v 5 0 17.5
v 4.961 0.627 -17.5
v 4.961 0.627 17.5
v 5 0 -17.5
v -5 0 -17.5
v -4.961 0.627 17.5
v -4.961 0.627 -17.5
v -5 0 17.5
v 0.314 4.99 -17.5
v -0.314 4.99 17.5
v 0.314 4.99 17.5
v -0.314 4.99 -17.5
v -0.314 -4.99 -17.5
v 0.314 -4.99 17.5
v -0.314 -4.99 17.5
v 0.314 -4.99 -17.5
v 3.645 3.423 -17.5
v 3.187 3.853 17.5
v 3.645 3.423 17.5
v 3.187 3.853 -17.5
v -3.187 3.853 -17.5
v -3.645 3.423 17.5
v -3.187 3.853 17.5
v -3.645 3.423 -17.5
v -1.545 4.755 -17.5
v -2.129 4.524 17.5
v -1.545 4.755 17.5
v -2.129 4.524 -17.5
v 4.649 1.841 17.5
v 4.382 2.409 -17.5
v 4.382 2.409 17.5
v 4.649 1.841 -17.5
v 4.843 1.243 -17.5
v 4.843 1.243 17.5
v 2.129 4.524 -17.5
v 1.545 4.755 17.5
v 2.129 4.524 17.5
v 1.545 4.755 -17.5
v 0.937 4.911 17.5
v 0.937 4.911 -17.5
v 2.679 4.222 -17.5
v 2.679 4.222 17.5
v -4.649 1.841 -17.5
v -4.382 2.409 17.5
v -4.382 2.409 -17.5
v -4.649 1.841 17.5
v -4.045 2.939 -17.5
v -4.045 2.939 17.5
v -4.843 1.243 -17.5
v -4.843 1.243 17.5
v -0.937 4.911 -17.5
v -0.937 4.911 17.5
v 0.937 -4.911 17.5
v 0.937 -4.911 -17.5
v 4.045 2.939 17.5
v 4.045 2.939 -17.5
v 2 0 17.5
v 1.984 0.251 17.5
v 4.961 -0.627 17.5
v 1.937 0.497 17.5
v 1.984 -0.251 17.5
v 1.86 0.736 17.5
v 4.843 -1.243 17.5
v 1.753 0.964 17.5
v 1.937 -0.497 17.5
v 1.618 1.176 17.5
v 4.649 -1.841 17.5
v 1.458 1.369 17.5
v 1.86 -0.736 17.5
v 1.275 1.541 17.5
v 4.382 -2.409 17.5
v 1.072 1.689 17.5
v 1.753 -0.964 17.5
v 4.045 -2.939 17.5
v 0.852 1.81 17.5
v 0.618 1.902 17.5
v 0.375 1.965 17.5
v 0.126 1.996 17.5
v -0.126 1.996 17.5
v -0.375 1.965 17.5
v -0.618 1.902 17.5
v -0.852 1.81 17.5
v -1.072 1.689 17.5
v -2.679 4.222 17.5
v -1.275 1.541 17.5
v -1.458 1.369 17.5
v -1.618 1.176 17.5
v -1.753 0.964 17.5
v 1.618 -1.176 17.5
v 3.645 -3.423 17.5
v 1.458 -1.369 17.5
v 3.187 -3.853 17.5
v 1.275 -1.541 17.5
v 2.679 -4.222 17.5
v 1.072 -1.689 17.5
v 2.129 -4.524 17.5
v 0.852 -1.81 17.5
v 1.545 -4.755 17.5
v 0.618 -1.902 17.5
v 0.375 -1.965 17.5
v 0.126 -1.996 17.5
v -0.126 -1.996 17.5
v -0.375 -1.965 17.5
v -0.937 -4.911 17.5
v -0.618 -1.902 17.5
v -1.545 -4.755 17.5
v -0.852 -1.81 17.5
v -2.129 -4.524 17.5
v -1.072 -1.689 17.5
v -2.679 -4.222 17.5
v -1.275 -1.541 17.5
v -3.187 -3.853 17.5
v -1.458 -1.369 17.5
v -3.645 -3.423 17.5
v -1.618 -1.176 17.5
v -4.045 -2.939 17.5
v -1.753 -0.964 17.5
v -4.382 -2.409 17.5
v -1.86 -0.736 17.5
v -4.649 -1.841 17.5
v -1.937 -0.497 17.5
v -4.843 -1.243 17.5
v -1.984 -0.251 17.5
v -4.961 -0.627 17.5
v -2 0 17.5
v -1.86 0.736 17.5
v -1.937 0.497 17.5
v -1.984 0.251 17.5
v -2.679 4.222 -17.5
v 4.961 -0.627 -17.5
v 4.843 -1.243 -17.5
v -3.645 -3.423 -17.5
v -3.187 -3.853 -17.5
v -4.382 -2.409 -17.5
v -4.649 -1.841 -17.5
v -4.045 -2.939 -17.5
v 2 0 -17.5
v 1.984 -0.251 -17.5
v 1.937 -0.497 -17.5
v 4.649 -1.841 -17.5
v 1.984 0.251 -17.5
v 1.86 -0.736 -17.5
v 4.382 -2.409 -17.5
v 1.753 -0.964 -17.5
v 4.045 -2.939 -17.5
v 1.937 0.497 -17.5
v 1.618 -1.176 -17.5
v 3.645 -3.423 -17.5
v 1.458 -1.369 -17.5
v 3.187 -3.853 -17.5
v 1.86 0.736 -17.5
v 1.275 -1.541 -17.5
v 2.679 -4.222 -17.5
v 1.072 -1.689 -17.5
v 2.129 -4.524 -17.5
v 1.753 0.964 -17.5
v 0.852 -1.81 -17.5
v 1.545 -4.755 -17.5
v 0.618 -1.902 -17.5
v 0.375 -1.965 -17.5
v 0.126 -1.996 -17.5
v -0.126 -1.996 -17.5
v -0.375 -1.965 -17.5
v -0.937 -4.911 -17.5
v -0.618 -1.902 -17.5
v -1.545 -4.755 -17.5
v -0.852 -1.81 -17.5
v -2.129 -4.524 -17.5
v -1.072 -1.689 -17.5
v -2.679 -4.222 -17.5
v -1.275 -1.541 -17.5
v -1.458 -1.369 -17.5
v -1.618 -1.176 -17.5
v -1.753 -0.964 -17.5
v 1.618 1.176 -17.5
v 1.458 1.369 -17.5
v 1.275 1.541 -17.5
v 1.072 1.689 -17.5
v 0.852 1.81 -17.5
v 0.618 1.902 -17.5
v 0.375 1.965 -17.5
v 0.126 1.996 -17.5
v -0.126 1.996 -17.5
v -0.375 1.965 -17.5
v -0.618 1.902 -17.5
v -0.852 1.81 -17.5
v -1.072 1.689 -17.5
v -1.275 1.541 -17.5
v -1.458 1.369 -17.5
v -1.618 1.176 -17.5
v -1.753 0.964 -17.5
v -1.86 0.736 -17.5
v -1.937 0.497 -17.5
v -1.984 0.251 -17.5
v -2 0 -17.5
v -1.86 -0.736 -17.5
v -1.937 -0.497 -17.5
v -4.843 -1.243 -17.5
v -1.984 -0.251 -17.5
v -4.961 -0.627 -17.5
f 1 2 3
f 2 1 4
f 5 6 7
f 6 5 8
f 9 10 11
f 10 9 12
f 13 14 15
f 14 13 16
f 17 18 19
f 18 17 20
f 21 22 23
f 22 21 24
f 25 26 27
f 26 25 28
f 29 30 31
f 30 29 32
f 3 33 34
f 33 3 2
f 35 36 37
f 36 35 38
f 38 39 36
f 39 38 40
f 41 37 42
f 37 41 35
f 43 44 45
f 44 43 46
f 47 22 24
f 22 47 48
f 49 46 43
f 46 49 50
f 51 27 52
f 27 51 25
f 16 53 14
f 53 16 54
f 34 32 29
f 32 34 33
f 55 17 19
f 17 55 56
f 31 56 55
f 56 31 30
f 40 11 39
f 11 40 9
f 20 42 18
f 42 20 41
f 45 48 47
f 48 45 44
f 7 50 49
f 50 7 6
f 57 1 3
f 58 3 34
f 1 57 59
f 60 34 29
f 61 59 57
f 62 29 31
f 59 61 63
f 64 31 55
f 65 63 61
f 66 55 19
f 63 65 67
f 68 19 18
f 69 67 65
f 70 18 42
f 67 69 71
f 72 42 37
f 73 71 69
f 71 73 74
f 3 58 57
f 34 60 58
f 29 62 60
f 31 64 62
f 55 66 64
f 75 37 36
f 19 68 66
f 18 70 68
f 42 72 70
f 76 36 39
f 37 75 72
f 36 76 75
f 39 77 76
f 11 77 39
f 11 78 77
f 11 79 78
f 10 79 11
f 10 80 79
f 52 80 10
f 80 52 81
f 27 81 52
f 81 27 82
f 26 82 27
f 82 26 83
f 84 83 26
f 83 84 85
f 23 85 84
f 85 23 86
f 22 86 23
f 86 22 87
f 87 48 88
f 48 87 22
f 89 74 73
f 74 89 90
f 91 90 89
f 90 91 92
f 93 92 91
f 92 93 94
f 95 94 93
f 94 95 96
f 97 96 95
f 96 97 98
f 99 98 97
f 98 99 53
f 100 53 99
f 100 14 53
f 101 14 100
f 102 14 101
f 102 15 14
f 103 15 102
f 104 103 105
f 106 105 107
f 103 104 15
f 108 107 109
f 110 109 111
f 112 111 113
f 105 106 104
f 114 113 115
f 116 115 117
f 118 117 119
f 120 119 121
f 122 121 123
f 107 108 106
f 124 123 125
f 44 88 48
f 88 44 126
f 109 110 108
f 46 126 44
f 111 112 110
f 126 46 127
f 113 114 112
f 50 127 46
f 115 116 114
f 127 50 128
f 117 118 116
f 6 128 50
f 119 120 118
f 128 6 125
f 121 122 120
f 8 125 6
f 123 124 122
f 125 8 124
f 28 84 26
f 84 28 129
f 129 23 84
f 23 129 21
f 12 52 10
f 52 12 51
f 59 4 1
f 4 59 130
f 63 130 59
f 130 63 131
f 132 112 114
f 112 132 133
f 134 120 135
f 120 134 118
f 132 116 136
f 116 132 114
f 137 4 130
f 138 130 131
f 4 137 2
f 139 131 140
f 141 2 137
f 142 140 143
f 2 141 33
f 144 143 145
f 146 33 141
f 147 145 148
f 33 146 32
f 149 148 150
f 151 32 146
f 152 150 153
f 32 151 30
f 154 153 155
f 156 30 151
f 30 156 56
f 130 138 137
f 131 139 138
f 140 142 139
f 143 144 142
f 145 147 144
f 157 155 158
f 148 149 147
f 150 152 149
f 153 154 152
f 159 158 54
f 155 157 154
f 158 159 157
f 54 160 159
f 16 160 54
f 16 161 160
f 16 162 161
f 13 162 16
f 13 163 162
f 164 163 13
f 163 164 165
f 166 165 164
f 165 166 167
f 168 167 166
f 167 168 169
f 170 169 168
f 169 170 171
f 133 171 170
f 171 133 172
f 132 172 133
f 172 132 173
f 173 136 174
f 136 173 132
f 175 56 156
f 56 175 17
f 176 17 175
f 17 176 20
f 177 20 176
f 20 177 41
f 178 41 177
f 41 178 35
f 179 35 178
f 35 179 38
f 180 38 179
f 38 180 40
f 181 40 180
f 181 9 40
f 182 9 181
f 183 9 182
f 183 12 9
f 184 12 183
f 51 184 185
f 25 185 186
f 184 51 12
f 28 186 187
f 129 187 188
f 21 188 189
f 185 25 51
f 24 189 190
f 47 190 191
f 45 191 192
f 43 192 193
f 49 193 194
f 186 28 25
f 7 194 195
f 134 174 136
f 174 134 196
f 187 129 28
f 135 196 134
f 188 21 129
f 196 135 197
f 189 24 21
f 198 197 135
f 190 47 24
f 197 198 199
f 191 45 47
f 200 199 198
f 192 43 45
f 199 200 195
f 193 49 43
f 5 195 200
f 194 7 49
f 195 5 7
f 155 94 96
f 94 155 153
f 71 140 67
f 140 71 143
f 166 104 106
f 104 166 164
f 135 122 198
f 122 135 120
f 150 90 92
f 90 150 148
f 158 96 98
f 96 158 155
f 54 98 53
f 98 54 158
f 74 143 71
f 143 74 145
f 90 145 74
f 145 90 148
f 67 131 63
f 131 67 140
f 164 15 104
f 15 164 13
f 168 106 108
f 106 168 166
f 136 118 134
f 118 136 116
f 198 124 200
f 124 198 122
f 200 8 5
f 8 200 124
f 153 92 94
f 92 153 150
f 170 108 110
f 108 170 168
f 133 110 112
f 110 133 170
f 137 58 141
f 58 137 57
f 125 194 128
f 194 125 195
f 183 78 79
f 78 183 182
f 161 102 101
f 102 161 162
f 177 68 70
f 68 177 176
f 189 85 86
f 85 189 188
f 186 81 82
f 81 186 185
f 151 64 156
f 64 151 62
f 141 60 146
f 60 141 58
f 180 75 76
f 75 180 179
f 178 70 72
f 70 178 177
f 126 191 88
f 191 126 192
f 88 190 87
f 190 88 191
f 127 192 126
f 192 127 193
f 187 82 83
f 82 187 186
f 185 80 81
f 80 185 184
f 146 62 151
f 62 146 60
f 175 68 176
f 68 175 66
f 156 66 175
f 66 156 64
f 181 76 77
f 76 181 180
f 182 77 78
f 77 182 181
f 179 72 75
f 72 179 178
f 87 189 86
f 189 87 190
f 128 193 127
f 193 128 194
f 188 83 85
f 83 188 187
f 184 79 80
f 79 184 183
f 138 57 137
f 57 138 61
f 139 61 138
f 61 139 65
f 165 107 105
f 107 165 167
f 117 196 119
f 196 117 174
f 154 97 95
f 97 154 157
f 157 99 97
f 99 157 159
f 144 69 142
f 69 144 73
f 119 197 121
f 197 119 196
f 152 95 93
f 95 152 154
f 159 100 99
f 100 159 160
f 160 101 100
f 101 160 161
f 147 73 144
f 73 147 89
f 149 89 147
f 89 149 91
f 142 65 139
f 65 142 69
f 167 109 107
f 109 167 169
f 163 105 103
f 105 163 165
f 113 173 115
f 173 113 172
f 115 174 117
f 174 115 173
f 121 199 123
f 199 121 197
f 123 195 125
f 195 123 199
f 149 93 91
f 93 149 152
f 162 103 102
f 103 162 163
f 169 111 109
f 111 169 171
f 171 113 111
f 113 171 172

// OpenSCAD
$fn = 50;


difference() {
	union() {
		translate(v = [0, 0, -17.5000000000]) {
			cylinder(h = 35, r = 5.0000000000);
		}
	}
	union() {
		translate(v = [0, 0, -100.0000000000]) {
			cylinder(h = 200, r = 2);
		}
	}
}
